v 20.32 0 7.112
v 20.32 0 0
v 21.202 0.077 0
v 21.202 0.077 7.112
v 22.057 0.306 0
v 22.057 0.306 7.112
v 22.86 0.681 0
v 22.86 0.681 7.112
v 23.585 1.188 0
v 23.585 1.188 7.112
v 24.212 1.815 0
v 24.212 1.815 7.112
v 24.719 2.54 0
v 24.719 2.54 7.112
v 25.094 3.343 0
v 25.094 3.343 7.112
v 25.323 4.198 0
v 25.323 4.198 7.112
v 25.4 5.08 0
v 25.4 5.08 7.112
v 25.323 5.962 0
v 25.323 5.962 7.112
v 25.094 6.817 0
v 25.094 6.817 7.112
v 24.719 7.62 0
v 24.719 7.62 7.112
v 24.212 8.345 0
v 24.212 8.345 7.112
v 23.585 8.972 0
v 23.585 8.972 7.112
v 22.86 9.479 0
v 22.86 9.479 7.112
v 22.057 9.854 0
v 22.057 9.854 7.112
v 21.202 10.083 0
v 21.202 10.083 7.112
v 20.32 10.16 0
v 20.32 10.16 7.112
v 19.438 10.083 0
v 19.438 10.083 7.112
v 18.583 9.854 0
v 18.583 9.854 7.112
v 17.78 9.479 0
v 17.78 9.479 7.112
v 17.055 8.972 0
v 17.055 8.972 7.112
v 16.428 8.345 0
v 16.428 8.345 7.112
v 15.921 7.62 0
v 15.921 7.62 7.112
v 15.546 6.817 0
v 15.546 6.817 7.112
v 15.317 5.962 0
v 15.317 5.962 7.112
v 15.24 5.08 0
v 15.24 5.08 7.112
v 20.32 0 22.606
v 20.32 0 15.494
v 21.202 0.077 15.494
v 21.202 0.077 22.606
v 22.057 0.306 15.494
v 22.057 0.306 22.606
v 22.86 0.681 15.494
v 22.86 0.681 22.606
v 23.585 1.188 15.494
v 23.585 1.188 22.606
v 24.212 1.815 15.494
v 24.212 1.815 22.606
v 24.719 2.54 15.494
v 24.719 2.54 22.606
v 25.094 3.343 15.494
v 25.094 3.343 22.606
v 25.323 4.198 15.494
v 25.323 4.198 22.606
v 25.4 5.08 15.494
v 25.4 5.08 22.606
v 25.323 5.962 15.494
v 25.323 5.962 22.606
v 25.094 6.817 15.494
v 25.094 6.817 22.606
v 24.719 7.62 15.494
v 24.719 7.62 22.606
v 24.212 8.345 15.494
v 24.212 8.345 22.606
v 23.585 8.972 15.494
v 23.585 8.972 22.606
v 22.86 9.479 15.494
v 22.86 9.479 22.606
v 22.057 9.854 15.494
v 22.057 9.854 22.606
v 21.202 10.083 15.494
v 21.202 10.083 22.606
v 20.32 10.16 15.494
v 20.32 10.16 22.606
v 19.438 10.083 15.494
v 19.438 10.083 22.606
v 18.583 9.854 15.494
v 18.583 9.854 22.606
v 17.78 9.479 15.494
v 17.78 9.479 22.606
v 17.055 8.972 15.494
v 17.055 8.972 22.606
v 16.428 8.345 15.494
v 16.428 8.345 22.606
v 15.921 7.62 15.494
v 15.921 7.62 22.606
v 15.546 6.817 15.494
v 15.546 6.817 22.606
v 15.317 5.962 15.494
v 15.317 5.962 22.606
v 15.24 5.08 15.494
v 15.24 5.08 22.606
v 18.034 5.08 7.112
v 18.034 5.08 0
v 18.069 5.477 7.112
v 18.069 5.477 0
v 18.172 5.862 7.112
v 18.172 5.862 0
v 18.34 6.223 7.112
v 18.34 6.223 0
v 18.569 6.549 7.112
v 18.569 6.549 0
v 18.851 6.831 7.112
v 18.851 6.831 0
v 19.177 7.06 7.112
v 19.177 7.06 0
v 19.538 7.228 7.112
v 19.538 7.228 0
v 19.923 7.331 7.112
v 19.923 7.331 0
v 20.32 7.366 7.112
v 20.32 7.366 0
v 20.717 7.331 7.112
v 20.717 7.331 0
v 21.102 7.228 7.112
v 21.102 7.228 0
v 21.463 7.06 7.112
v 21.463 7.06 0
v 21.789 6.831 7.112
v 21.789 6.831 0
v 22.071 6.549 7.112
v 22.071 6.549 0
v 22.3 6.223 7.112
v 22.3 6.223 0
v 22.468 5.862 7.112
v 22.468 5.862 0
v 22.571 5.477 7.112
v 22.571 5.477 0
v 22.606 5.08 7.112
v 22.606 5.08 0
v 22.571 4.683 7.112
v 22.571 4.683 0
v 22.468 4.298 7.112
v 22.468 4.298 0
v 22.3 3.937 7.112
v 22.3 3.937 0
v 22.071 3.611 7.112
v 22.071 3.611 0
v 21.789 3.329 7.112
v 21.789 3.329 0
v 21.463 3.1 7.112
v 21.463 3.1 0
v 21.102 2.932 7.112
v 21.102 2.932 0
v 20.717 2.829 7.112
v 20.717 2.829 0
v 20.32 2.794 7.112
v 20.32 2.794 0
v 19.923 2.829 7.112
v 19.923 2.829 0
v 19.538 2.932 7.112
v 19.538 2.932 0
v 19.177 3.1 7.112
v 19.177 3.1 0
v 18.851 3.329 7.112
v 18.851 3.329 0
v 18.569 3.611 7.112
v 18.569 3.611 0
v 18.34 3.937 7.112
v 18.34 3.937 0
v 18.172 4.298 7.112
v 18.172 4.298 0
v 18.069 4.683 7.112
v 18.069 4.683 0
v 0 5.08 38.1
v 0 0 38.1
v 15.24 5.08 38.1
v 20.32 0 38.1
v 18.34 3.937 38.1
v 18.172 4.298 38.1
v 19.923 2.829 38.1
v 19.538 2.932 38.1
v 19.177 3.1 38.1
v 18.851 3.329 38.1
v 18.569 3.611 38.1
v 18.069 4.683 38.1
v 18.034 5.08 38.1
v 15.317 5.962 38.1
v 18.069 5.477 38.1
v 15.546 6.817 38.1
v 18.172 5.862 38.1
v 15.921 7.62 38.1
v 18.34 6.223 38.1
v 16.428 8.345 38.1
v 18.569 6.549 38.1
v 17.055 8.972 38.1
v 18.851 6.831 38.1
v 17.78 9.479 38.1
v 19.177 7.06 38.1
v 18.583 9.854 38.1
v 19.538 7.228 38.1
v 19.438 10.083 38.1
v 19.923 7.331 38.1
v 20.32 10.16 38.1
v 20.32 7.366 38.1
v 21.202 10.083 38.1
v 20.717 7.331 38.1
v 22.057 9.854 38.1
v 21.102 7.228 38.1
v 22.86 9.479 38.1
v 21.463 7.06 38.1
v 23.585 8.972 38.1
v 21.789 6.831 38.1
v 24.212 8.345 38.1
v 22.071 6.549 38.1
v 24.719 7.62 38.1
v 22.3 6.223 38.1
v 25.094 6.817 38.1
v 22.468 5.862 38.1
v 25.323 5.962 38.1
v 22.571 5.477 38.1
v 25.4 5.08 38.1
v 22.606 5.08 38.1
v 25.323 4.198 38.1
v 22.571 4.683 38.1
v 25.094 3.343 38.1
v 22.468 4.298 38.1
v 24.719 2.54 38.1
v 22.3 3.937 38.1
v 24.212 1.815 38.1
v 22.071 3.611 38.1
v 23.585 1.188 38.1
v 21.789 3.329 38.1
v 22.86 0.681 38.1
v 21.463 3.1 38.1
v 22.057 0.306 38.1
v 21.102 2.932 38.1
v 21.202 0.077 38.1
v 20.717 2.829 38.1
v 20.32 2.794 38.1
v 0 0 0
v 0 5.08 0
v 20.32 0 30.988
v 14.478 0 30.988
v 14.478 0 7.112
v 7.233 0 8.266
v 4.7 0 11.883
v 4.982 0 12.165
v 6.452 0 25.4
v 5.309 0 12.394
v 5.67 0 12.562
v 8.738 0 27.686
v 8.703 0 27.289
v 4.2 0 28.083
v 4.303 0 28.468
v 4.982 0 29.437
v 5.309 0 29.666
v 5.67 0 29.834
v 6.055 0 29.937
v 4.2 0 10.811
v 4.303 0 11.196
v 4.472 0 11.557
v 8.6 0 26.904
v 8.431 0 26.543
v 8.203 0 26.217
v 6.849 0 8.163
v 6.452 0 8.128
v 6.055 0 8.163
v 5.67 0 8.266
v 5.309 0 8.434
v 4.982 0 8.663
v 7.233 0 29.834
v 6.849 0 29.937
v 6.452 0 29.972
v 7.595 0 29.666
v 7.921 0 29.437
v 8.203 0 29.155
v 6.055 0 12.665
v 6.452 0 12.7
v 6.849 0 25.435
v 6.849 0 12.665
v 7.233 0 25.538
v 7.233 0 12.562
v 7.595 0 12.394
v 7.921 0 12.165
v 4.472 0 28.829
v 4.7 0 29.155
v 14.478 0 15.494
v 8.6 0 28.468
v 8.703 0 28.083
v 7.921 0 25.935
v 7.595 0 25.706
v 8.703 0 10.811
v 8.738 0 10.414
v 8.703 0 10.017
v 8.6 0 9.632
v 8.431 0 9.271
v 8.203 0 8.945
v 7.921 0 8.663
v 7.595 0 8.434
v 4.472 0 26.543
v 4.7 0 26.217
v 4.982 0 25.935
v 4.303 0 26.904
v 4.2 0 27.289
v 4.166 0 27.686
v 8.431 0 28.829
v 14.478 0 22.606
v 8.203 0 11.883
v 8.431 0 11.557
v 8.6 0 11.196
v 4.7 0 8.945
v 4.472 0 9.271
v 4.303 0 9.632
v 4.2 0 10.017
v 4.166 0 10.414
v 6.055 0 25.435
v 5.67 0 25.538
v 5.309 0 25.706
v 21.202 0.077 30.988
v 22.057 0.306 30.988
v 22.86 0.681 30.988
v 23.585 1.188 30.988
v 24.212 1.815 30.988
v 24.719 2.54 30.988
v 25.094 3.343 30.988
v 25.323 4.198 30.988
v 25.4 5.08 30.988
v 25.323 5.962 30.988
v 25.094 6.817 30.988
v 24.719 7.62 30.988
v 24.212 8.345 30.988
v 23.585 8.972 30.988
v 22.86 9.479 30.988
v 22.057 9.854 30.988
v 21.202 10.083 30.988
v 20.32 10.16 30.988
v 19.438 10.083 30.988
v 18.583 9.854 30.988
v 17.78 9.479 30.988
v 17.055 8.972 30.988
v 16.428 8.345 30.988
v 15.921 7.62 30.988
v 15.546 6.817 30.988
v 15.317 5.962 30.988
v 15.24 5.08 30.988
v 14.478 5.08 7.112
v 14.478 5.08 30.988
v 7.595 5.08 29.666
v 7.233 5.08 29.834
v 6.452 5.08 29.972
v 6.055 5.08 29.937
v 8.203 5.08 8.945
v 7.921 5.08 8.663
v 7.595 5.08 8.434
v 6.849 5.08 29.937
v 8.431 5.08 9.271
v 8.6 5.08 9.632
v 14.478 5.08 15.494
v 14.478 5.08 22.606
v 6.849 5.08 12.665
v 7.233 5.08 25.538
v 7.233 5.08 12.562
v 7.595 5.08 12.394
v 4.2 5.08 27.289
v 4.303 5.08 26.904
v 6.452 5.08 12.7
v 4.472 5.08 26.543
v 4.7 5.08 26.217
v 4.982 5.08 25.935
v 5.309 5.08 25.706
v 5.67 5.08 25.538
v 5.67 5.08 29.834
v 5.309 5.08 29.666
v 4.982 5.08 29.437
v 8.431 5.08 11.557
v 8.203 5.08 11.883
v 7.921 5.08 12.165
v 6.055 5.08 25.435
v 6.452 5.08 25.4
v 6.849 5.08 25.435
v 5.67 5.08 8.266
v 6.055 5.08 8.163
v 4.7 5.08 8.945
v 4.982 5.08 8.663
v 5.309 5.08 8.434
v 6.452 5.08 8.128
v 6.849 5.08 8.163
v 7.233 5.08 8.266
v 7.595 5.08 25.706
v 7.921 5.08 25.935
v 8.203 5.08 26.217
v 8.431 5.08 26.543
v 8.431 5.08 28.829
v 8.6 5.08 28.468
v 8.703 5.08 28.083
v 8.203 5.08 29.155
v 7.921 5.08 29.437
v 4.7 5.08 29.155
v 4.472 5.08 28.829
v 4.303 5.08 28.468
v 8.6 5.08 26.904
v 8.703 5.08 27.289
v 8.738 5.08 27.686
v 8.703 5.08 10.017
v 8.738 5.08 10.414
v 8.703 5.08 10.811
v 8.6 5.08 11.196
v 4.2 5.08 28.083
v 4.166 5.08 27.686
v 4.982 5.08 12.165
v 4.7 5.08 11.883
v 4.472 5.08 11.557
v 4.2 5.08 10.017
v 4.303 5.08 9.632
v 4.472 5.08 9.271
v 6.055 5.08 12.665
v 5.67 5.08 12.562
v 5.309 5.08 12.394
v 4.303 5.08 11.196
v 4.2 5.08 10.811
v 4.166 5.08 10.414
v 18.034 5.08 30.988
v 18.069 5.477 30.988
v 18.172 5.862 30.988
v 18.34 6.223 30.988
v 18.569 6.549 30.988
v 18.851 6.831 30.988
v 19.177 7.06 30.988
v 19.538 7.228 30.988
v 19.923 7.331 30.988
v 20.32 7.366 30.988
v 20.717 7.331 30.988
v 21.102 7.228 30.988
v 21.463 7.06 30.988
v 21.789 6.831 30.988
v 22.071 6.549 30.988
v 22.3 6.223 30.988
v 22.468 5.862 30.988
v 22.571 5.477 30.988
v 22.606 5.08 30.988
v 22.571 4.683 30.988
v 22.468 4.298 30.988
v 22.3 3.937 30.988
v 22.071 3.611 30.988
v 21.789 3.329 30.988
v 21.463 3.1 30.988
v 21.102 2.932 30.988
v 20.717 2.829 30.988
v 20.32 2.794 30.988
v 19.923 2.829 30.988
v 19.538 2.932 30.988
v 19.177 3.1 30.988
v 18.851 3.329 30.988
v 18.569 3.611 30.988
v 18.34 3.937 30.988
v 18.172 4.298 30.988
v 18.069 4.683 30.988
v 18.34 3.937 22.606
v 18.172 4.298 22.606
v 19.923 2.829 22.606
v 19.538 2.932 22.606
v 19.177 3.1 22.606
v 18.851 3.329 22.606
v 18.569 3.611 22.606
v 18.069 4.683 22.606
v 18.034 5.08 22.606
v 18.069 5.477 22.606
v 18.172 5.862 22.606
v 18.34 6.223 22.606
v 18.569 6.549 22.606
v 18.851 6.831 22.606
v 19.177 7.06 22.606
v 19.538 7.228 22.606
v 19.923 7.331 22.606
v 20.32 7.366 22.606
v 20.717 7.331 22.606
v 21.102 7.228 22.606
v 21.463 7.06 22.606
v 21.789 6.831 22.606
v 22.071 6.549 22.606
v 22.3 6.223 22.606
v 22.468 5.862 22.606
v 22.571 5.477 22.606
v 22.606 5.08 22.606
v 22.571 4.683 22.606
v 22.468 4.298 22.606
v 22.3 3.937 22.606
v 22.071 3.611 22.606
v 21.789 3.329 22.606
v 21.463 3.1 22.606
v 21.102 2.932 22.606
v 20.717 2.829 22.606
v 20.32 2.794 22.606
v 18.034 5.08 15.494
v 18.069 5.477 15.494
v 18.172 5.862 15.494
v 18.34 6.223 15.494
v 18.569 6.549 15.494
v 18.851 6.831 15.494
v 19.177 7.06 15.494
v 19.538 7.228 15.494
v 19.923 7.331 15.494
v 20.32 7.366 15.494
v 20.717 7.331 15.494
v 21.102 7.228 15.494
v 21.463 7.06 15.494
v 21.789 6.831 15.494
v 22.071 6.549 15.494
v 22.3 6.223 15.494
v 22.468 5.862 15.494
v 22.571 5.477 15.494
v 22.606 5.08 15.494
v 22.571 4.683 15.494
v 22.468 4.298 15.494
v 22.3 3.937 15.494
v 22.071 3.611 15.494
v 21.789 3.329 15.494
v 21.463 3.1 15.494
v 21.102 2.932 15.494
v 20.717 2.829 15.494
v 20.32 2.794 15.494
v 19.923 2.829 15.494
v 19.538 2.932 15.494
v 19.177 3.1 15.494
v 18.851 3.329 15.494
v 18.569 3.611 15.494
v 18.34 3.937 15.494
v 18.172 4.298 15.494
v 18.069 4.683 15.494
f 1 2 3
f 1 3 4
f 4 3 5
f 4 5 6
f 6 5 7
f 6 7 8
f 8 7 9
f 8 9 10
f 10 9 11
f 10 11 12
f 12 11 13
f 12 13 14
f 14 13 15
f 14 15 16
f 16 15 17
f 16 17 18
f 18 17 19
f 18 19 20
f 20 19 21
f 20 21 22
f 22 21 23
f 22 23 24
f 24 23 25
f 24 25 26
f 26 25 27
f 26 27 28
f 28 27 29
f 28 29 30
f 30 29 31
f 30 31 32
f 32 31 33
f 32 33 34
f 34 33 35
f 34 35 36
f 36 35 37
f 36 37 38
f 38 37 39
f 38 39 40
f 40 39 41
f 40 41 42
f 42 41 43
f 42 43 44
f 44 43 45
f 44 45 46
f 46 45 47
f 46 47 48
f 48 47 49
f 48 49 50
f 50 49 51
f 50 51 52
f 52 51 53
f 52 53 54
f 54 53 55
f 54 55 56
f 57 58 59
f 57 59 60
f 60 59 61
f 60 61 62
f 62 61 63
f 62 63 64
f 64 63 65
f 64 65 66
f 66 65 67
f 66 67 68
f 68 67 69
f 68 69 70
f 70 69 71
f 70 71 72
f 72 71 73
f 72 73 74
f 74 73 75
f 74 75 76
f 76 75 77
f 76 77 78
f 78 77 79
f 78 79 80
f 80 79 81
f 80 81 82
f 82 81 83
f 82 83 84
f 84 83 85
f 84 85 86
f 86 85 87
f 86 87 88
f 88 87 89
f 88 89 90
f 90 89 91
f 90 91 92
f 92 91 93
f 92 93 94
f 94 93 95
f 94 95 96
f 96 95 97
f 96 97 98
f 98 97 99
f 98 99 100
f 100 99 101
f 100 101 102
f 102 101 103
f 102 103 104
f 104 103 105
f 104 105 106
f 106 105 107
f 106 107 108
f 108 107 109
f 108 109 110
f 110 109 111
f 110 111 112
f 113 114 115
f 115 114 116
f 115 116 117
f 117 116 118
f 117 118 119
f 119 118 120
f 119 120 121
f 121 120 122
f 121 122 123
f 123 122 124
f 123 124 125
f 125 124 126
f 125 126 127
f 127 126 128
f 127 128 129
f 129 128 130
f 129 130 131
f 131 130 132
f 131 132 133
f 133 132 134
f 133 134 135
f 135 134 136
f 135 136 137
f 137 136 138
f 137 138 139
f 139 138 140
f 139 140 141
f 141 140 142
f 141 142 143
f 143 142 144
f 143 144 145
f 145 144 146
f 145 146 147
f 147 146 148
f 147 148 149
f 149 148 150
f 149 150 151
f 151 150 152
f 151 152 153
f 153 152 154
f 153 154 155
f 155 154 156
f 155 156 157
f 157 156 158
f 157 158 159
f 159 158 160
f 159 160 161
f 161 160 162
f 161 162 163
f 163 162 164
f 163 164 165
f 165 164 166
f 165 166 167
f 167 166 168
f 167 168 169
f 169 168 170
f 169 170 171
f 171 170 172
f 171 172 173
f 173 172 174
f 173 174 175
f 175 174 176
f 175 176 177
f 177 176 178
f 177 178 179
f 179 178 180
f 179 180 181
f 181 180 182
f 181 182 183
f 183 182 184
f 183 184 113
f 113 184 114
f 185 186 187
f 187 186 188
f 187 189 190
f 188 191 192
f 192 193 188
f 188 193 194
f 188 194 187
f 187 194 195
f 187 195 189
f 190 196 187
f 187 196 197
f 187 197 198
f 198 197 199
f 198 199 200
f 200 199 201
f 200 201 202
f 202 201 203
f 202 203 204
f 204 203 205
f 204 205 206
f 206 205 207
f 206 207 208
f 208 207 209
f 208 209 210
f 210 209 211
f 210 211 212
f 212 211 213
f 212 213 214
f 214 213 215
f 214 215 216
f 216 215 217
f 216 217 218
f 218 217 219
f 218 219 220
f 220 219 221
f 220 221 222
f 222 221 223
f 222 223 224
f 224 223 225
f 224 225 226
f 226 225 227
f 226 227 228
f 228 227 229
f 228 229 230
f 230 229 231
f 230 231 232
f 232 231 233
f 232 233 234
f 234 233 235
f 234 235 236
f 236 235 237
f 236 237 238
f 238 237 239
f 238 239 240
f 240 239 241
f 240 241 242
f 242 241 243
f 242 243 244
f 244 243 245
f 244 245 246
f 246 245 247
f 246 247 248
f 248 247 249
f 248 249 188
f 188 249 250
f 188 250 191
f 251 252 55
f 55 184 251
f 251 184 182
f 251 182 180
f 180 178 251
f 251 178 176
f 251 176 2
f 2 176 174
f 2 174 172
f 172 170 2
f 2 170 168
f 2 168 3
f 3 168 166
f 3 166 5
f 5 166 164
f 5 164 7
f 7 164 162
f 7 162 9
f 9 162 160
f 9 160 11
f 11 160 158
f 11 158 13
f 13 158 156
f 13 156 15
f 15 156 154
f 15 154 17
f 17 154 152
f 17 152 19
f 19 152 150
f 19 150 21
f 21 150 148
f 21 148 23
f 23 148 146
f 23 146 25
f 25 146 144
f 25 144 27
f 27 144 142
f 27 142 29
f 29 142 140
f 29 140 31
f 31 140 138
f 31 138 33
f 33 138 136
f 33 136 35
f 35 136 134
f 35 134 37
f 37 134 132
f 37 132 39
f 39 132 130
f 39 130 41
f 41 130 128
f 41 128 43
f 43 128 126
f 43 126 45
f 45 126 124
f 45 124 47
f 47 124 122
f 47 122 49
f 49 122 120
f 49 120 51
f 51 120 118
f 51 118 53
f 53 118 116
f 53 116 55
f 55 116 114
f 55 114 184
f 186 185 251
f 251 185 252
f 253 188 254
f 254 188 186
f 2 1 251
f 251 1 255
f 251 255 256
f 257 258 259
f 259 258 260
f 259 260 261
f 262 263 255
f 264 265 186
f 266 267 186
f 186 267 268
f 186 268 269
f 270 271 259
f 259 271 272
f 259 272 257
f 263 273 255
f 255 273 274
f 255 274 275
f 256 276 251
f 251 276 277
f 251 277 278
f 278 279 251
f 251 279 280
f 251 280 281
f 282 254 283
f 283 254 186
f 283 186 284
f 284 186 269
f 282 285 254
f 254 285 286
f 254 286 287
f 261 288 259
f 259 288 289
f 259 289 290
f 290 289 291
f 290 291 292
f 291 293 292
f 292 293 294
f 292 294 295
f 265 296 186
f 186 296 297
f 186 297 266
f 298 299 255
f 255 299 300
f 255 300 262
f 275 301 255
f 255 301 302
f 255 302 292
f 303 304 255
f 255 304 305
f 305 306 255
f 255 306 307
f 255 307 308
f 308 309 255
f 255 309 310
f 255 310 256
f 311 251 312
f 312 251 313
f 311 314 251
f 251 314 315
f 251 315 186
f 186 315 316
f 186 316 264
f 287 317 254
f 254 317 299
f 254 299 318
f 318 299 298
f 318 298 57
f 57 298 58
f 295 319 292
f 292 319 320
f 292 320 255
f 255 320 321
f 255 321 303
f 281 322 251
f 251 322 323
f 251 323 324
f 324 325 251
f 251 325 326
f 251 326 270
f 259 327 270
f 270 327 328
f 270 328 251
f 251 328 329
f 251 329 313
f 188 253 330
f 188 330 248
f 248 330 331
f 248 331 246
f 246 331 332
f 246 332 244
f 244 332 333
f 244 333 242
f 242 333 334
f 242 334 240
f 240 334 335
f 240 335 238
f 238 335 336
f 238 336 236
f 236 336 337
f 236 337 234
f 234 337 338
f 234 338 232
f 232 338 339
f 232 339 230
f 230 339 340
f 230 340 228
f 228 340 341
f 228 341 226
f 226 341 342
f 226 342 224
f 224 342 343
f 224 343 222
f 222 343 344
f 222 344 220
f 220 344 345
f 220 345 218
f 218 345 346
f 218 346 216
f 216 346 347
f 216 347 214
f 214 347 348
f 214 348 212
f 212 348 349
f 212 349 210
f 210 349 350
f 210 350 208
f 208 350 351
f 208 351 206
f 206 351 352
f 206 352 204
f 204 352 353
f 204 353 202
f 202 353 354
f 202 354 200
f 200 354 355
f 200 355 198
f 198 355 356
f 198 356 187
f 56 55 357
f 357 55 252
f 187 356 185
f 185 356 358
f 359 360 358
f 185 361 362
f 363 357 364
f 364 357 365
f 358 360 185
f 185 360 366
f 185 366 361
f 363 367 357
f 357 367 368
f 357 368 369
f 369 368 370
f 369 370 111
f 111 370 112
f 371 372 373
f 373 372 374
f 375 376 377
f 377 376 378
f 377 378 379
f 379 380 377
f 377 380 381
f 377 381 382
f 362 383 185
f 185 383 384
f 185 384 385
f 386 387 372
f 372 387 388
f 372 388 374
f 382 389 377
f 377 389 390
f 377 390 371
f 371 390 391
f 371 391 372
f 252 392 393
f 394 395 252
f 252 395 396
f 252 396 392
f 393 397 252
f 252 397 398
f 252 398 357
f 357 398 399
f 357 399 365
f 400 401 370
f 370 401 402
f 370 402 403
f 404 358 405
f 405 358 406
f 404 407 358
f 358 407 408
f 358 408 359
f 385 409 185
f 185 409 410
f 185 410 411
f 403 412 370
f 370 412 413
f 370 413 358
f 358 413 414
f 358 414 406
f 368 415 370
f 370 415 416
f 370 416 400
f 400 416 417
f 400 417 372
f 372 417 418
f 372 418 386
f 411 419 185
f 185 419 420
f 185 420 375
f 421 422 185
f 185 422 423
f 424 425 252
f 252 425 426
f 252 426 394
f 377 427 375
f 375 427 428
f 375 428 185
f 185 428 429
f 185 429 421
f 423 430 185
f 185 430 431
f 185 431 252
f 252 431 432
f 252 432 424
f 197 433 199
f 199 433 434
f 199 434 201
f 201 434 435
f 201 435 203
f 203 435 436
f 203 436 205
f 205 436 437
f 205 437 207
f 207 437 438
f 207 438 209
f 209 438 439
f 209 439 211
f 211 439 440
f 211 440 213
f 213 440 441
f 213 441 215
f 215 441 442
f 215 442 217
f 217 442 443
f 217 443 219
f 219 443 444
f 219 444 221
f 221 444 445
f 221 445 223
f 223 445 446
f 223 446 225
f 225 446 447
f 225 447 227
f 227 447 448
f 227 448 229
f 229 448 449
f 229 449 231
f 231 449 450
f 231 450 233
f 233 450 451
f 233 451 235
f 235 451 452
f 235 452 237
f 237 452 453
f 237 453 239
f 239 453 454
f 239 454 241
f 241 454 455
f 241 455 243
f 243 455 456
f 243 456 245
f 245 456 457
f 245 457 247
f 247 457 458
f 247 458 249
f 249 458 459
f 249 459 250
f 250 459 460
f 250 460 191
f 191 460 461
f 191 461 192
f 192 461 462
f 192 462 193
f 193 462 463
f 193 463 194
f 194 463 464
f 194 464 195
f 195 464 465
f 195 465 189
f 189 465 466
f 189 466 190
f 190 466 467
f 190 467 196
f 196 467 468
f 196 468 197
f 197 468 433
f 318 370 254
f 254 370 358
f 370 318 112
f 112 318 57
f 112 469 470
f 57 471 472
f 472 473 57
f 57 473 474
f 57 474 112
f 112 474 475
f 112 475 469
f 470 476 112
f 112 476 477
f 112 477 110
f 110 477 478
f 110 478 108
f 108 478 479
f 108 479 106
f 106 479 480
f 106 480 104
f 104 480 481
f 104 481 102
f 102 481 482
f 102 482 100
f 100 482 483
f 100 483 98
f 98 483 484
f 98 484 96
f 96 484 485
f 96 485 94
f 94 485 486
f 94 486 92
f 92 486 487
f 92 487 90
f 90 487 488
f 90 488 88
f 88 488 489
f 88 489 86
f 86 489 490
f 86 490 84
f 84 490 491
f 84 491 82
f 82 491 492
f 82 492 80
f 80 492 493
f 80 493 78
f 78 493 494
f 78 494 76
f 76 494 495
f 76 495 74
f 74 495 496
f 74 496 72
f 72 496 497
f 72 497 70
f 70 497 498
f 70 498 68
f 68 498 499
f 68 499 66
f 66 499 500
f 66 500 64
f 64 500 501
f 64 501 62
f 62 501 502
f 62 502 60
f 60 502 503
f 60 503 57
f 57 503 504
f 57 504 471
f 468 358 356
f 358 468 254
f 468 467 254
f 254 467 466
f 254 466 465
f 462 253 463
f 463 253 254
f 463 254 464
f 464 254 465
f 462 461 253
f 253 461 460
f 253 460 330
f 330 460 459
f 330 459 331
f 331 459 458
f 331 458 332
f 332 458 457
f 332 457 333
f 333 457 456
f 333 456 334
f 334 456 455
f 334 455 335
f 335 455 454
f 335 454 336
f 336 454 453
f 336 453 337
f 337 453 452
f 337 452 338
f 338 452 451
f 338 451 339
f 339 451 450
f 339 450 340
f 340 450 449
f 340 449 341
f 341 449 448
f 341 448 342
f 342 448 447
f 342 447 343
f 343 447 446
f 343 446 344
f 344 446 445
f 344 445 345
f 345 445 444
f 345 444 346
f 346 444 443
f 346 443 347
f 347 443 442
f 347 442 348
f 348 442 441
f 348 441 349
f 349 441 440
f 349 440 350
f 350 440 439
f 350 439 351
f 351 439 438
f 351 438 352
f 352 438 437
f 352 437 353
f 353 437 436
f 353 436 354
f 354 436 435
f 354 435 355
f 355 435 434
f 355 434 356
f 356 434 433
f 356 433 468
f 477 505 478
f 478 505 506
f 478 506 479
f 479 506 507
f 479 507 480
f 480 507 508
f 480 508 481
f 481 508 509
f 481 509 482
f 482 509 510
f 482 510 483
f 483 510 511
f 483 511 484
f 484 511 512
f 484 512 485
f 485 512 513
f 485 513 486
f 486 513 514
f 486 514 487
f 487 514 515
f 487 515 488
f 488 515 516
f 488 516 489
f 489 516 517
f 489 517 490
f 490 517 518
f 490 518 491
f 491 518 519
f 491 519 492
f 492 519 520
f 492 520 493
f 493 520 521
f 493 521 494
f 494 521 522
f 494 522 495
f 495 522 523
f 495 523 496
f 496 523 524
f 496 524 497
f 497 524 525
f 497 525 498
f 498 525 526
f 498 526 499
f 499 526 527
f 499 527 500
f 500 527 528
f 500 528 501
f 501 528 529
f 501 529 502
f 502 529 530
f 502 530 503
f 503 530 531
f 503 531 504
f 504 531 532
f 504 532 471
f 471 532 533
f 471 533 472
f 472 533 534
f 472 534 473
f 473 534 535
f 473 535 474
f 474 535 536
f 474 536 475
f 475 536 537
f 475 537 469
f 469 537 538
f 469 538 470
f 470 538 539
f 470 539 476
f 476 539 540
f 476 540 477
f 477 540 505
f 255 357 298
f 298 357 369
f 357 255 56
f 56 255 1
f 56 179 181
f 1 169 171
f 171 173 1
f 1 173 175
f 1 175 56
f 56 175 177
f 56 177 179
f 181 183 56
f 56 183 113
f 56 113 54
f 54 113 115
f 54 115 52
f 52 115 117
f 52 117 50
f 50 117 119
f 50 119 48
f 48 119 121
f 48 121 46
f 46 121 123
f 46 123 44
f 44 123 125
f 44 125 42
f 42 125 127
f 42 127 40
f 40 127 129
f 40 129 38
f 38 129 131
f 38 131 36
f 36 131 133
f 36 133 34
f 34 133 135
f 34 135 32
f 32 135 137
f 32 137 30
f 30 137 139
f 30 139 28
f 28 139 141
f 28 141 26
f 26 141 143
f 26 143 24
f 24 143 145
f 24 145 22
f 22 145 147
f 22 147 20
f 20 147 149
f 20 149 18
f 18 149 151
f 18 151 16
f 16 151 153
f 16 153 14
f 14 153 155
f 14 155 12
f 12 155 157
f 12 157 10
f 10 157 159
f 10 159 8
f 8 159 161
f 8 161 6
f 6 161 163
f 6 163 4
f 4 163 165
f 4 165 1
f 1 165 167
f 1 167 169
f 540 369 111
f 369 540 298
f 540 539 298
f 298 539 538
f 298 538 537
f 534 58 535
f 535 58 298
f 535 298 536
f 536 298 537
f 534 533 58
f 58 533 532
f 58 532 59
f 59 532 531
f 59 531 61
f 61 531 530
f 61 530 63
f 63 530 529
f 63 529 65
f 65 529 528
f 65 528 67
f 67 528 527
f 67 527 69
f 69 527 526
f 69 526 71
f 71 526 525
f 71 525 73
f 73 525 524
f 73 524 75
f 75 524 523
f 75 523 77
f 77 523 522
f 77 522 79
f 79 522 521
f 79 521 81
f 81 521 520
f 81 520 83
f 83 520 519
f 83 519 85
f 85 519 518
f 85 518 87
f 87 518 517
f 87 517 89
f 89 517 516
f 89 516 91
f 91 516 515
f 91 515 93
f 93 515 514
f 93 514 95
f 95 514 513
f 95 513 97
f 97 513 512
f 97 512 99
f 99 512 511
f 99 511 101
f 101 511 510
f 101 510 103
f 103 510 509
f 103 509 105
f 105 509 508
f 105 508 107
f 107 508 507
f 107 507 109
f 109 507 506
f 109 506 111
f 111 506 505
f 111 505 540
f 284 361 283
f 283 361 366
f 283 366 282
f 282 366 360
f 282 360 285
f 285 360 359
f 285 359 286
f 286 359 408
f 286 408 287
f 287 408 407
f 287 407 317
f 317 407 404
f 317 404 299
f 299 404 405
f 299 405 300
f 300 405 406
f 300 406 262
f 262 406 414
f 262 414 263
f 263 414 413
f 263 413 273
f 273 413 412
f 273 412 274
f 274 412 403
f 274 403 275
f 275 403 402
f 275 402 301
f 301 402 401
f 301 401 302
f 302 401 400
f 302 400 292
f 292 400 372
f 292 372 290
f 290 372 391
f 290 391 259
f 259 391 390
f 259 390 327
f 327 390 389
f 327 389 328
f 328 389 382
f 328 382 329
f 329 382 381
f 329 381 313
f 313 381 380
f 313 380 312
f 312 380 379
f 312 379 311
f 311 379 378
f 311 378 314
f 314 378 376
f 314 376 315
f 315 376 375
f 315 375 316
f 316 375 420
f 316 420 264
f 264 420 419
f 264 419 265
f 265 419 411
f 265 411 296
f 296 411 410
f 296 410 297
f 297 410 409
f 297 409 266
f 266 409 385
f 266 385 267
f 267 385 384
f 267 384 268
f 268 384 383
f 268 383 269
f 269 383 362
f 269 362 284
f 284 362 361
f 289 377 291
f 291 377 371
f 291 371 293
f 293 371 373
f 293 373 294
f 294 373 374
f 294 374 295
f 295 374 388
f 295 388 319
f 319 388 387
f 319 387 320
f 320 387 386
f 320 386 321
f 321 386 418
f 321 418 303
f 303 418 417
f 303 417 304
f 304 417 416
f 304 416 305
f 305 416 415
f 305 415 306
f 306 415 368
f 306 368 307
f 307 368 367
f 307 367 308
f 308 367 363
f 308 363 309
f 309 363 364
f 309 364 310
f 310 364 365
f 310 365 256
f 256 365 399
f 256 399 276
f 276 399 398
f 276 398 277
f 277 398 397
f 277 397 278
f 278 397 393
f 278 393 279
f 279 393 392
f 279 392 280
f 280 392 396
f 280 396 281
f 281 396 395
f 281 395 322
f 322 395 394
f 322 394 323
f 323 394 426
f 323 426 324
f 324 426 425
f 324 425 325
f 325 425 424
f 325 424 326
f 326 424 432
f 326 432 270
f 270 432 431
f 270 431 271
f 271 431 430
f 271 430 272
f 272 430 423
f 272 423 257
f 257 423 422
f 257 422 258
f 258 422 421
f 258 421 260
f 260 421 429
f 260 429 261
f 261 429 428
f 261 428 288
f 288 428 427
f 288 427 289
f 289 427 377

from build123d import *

# Parameters (mm, degrees)
SKETCH1_R               = 2.286
BOSS_EXTRUDE1_DEPTH     = 38.1
SKETCH2_W               = 10.922
SKETCH2_H               = 8.382
CUT_EXTRUDE1_DEPTH      = 6.08
CUT_EXTRUDE1_DEPTH_BACK = 6.08
SKETCH3_R               = 2.286
CUT_EXTRUDE2_DEPTH      = 6.08
CUT_EXTRUDE2_DEPTH_BACK = 6.08


with BuildPart() as part:
    # Sketch1 → Boss-Extrude1 (new body)
    with BuildSketch(Plane.XY):
        with BuildLine():
            Line((0, 5.08), (15.24, 5.08))
            ThreePointArc((15.24, 5.08), (23.912102448, 8.672102448), (20.32, 0))
            Line((20.32, 0), (0, 0))
            Line((0, 0), (0, 5.08))
        make_face()
        with Locations((20.32, 5.08)):
            Circle(SKETCH1_R, mode=Mode.SUBTRACT)
    extrude(amount=BOSS_EXTRUDE1_DEPTH)

    # Sketch2 → Cut-Extrude1 (cut, two sides)
    with BuildSketch(Plane(origin=(0, 5.08, 0), x_dir=(1, 0, 0), z_dir=(0, 1, 0))) as cut_extrude1_sk:
        with Locations((19.939, -11.303)):
            Rectangle(SKETCH2_W, SKETCH2_H)
        with Locations((19.939, -26.797)):
            Rectangle(SKETCH2_W, SKETCH2_H)
    extrude(amount=CUT_EXTRUDE1_DEPTH, mode=Mode.SUBTRACT)
    extrude(cut_extrude1_sk.sketch, amount=-CUT_EXTRUDE1_DEPTH_BACK, mode=Mode.SUBTRACT)

    # Sketch3 → Cut-Extrude2 (cut, two sides)
    with BuildSketch(Plane(origin=(0, 5.08, 0), x_dir=(1, 0, 0), z_dir=(0, 1, 0))) as cut_extrude2_sk:
        with Locations((6.4516, -10.414)):
            Circle(SKETCH3_R)
        with Locations((6.4516, -27.686)):
            Circle(SKETCH3_R)
    extrude(amount=CUT_EXTRUDE2_DEPTH, mode=Mode.SUBTRACT)
    extrude(cut_extrude2_sk.sketch, amount=-CUT_EXTRUDE2_DEPTH_BACK, mode=Mode.SUBTRACT)


solid = part.part
